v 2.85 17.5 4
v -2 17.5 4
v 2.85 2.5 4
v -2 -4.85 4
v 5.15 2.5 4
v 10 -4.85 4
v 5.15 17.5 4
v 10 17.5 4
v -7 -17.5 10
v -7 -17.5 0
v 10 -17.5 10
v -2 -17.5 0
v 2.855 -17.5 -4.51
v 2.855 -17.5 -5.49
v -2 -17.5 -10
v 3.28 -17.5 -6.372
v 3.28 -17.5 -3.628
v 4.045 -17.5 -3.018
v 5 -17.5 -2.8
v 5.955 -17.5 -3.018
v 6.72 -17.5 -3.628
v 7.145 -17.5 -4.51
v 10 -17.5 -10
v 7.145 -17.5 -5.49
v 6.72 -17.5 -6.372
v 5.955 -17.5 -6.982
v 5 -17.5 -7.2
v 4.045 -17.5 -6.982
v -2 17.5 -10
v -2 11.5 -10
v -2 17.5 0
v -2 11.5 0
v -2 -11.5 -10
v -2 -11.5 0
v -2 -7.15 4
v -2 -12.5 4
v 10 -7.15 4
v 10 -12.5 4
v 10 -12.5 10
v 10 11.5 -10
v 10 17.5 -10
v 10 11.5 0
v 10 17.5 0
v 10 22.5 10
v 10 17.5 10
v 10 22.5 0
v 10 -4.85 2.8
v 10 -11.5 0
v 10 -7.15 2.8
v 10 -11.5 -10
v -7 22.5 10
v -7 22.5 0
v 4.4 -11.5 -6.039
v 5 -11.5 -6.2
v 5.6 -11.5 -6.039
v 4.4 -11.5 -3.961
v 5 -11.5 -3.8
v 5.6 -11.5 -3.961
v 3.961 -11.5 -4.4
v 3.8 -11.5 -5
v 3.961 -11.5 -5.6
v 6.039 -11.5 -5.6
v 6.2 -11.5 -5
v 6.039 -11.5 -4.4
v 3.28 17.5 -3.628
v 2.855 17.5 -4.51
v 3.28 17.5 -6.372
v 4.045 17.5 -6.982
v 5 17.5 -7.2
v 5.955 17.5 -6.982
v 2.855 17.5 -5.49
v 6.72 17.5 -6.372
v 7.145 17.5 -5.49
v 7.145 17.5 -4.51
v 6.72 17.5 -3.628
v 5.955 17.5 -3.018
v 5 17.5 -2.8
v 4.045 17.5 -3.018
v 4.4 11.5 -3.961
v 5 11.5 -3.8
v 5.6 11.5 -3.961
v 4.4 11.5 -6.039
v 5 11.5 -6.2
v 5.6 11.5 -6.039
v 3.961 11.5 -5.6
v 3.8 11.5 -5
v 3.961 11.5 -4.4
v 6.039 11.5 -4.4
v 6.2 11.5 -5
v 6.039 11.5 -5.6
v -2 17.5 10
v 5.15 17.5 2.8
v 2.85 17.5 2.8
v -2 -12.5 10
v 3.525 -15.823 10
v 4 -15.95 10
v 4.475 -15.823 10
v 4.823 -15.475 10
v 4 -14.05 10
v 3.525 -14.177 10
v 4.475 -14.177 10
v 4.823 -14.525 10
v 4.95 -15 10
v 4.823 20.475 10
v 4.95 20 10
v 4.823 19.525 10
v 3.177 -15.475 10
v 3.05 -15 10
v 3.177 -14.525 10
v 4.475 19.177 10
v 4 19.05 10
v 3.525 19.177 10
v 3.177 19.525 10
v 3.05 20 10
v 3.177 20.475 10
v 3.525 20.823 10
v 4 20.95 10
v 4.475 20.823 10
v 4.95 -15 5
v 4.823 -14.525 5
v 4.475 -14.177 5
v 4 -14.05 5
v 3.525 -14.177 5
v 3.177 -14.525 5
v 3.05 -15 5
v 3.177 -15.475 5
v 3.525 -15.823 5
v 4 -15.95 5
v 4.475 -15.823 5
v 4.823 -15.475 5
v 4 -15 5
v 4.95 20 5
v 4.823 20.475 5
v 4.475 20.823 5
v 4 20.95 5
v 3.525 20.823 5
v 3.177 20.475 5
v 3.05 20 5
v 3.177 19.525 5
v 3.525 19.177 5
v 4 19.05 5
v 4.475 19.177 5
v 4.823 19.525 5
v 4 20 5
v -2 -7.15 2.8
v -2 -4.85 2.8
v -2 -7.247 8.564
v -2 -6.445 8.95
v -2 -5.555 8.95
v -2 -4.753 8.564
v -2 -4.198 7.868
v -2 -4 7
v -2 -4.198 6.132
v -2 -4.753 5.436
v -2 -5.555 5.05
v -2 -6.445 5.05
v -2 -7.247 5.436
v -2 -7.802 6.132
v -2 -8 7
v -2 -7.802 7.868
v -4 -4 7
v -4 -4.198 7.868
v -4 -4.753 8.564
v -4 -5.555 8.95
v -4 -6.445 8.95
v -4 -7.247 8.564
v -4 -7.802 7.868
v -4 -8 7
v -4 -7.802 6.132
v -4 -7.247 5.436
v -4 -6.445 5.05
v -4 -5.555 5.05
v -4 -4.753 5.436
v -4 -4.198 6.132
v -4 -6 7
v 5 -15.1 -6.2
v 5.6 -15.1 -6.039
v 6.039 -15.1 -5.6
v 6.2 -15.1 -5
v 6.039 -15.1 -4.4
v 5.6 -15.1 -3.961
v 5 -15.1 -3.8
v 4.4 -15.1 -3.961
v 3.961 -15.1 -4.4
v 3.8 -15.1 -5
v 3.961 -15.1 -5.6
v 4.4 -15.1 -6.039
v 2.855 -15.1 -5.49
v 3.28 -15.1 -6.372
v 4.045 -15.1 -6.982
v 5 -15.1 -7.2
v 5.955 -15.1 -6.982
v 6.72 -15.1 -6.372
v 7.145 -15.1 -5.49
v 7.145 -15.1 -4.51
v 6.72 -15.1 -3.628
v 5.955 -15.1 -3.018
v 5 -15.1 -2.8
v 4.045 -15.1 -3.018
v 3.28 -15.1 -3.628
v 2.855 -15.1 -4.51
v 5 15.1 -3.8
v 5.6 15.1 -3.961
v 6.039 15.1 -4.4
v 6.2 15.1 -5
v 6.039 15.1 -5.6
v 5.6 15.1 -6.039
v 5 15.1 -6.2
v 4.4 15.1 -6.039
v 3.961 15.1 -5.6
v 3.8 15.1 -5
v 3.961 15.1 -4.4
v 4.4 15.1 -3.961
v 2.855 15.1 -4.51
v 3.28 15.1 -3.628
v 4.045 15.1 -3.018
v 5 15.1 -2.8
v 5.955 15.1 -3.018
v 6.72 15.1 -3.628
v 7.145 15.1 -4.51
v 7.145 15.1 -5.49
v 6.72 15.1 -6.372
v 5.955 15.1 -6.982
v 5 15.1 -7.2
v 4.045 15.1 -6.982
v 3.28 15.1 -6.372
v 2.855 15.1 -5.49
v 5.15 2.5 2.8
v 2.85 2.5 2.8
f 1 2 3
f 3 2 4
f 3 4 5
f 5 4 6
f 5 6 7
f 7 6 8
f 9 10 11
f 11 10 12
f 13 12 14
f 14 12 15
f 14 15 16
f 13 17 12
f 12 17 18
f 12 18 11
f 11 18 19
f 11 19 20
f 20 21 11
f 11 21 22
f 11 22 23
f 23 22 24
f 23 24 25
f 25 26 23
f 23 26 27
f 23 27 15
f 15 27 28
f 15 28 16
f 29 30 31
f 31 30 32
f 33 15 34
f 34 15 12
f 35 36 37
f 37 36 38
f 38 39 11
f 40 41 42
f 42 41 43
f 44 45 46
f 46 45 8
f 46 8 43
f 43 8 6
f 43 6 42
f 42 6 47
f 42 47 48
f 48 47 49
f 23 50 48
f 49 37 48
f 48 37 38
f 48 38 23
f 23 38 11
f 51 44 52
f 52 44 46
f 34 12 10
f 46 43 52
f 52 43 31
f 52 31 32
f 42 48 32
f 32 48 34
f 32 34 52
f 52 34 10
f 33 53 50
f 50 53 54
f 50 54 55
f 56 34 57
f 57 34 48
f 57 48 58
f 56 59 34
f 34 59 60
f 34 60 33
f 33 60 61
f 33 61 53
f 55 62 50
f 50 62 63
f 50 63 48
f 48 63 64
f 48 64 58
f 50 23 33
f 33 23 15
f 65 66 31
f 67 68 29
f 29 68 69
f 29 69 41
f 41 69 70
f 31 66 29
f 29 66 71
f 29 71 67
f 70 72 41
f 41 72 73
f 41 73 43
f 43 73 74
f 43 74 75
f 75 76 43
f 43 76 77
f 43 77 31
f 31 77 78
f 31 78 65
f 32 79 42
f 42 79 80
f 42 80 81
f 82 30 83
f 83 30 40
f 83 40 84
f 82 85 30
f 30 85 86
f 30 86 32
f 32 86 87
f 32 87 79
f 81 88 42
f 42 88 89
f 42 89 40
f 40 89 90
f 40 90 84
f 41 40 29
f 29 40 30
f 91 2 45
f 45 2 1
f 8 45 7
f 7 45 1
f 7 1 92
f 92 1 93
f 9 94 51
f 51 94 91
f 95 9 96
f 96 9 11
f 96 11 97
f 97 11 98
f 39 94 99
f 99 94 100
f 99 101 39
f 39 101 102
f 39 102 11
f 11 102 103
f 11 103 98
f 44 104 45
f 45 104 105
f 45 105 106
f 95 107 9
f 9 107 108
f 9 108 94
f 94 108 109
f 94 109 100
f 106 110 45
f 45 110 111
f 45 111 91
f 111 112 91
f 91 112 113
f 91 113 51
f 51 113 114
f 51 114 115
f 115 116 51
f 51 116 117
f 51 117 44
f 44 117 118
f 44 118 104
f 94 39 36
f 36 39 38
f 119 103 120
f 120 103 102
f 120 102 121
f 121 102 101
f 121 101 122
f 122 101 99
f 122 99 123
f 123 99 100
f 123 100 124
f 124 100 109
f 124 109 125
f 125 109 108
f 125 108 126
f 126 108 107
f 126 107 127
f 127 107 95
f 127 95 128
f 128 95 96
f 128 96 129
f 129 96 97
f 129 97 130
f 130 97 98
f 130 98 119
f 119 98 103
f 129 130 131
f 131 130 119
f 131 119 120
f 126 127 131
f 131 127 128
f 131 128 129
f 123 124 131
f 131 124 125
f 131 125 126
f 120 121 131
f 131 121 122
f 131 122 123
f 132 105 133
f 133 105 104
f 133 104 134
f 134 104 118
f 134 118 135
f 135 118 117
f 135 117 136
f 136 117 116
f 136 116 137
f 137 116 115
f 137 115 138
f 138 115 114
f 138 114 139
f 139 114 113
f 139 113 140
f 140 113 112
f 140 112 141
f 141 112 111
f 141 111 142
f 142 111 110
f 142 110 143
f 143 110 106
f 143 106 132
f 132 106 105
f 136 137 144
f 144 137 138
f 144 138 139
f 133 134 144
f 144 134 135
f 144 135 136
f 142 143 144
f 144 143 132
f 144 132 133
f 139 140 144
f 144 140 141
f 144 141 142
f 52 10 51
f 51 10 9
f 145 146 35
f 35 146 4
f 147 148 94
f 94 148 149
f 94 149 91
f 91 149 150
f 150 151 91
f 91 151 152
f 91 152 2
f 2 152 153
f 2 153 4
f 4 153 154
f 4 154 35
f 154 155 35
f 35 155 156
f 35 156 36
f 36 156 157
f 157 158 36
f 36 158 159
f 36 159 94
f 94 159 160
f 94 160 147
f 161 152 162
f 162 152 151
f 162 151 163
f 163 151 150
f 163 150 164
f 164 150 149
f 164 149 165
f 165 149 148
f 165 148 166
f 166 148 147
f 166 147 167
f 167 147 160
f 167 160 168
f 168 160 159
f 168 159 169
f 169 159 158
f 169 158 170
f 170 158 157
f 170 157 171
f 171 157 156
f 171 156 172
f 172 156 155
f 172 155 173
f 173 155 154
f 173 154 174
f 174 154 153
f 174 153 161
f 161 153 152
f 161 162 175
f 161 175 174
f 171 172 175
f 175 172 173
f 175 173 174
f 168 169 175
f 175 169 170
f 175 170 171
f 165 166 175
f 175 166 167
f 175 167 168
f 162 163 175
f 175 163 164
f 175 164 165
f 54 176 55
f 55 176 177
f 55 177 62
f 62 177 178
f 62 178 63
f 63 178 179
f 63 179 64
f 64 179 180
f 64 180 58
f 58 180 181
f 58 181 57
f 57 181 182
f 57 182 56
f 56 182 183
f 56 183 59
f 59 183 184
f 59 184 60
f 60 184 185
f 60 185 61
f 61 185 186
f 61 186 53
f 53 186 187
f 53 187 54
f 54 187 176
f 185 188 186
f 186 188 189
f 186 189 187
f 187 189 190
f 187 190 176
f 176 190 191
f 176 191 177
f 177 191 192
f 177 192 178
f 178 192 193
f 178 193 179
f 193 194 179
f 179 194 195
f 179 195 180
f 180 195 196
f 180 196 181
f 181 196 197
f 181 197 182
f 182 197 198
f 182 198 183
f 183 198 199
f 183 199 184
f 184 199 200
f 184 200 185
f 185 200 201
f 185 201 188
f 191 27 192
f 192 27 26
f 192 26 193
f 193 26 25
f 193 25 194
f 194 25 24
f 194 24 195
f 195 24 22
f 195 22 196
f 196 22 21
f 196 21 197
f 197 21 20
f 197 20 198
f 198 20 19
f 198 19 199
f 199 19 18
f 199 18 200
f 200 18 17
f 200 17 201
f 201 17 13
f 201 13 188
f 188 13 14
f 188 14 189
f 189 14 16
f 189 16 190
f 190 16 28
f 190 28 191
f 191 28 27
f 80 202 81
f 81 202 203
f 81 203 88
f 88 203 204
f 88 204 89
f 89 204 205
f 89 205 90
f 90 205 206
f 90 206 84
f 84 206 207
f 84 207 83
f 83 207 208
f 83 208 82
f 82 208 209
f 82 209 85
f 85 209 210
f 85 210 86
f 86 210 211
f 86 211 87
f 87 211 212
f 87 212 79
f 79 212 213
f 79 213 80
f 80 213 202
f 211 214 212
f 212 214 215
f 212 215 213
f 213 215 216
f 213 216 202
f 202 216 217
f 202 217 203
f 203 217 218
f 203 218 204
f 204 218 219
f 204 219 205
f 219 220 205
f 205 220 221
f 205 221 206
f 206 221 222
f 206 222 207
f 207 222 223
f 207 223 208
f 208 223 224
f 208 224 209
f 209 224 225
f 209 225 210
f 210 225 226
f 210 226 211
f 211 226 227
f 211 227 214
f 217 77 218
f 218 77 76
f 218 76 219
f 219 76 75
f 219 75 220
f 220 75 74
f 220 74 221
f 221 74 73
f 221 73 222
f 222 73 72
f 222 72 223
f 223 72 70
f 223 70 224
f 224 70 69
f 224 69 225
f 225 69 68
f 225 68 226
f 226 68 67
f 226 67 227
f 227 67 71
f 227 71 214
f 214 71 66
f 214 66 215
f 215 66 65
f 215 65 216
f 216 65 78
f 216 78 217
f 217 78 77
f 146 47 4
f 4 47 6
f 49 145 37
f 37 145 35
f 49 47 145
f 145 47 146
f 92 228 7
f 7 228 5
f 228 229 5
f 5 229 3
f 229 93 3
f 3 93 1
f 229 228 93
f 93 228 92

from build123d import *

# Parameters (mm, degrees)
ESQUISSE1_W                                       = 12
ESQUISSE1_H                                       = 40
BOSS_EXTRU_1_DEPTH                                = 4
ESQUISSE2_W                                       = 12
ESQUISSE2_H                                       = 6
BOSS_EXTRU_2_DEPTH                                = 10
ESQUISSE4_W                                       = 12
ESQUISSE4_H                                       = 5
BOSS_EXTRU_3_DEPTH                                = 6
ESQUISSE5_R                                       = 0.95
ENL_V_MAT_EXTRU_2_DEPTH                           = 5
ESQUISSE6_W                                       = 10
ESQUISSE6_H                                       = 40
BOSS_EXTRU_4_DEPTH                                = 5
ESQUISSE7_R                                       = 2
ENL_V_MAT_EXTRU_3_DEPTH                           = 2
CHAMBRAGE_POUR_VIS_SIX_PANS_CREUX_M21_D           = 2.4
CHAMBRAGE_POUR_VIS_SIX_PANS_CREUX_M21_DEPTH       = 6
CHAMBRAGE_POUR_VIS_SIX_PANS_CREUX_M21_CBORE_D     = 4.4
CHAMBRAGE_POUR_VIS_SIX_PANS_CREUX_M21_CBORE_DEPTH = 2.4
ESQUISSE15_W                                      = 12
ESQUISSE15_H                                      = 2.3
ESQUISSE15_W_2                                    = 2.3
ESQUISSE15_H_2                                    = 15
ENL_V_MAT_EXTRU_4_DEPTH                           = 1.2


with BuildPart() as part:
    # Esquisse1 → Boss.-Extru.1 (new body)
    with BuildSketch(Plane.XY):
        with Locations((4, 2.5)):
            Rectangle(ESQUISSE1_W, ESQUISSE1_H)
    extrude(amount=BOSS_EXTRU_1_DEPTH)

    # Esquisse2 → Boss.-Extru.2 (add)
    with BuildSketch(Plane(origin=(0, 0, 0), x_dir=(-1, 0, 0), z_dir=(0, 0, -1))):
        with Locations((-4, -14.5)):
            Rectangle(ESQUISSE2_W, ESQUISSE2_H)
    boss_extru_2 = extrude(amount=BOSS_EXTRU_2_DEPTH)

    # Symétrie1: Boss.-Extru.2 across plane
    add(boss_extru_2.mirror(Plane.ZX))

    # Esquisse4 → Boss.-Extru.3 (add)
    with BuildSketch(Plane.XY.offset(4)):
        with Locations((4, 20)):
            Rectangle(ESQUISSE4_W, ESQUISSE4_H)
        with Locations((4, -15)):
            Rectangle(ESQUISSE4_W, ESQUISSE4_H)
    extrude(amount=BOSS_EXTRU_3_DEPTH)

    # Esquisse5 → Enlèv. mat.-Extru.2 (cut)
    with BuildSketch(Plane.XY.offset(10)):
        with Locations((4, -15)):
            Circle(ESQUISSE5_R)
        with Locations(Location((4, 20, 0), (0, 0, 180))):
            Circle(ESQUISSE5_R)
    extrude(amount=-ENL_V_MAT_EXTRU_2_DEPTH, mode=Mode.SUBTRACT)

    # Esquisse6 → Boss.-Extru.4 (add)
    with BuildSketch(Plane.ZY.offset(2)):
        with Locations((5, 2.5)):
            Rectangle(ESQUISSE6_W, ESQUISSE6_H)
    extrude(amount=BOSS_EXTRU_4_DEPTH)

    # Esquisse7 → Enlèv. mat.-Extru.3 (cut)
    with BuildSketch(Plane(origin=(-2, 0, 0), x_dir=(0, 0, -1), z_dir=(1, 0, 0))):
        with Locations(Location((-7, -6, 0), (0, 0, 90))):
            Circle(ESQUISSE7_R)
    extrude(amount=-ENL_V_MAT_EXTRU_3_DEPTH, mode=Mode.SUBTRACT)

    # Chambrage pour vis à six pans creux M21
    with Locations(Plane(origin=(0, -17.5, 0), x_dir=(-1, 0, 0), z_dir=(0, -1, 0))):
        with Locations((-5, 5)):
            chambrage_pour_vis_six_pans_creux_m21 = CounterBoreHole(CHAMBRAGE_POUR_VIS_SIX_PANS_CREUX_M21_D / 2, CHAMBRAGE_POUR_VIS_SIX_PANS_CREUX_M21_CBORE_D / 2, CHAMBRAGE_POUR_VIS_SIX_PANS_CREUX_M21_CBORE_DEPTH, depth=CHAMBRAGE_POUR_VIS_SIX_PANS_CREUX_M21_DEPTH)

    # Symétrie2: Chambrage pour vis à six pans creux M21 across plane
    add(chambrage_pour_vis_six_pans_creux_m21.mirror(Plane.ZX), mode=Mode.SUBTRACT)

    # Esquisse15 → Enlèv. mat.-Extru.4 (cut)
    with BuildSketch(Plane.XY.offset(4)):
        with Locations((4, -6)):
            Rectangle(ESQUISSE15_W, ESQUISSE15_H)
        with Locations((4, 10)):
            Rectangle(ESQUISSE15_W_2, ESQUISSE15_H_2)
    extrude(amount=-ENL_V_MAT_EXTRU_4_DEPTH, mode=Mode.SUBTRACT)


solid = part.part
